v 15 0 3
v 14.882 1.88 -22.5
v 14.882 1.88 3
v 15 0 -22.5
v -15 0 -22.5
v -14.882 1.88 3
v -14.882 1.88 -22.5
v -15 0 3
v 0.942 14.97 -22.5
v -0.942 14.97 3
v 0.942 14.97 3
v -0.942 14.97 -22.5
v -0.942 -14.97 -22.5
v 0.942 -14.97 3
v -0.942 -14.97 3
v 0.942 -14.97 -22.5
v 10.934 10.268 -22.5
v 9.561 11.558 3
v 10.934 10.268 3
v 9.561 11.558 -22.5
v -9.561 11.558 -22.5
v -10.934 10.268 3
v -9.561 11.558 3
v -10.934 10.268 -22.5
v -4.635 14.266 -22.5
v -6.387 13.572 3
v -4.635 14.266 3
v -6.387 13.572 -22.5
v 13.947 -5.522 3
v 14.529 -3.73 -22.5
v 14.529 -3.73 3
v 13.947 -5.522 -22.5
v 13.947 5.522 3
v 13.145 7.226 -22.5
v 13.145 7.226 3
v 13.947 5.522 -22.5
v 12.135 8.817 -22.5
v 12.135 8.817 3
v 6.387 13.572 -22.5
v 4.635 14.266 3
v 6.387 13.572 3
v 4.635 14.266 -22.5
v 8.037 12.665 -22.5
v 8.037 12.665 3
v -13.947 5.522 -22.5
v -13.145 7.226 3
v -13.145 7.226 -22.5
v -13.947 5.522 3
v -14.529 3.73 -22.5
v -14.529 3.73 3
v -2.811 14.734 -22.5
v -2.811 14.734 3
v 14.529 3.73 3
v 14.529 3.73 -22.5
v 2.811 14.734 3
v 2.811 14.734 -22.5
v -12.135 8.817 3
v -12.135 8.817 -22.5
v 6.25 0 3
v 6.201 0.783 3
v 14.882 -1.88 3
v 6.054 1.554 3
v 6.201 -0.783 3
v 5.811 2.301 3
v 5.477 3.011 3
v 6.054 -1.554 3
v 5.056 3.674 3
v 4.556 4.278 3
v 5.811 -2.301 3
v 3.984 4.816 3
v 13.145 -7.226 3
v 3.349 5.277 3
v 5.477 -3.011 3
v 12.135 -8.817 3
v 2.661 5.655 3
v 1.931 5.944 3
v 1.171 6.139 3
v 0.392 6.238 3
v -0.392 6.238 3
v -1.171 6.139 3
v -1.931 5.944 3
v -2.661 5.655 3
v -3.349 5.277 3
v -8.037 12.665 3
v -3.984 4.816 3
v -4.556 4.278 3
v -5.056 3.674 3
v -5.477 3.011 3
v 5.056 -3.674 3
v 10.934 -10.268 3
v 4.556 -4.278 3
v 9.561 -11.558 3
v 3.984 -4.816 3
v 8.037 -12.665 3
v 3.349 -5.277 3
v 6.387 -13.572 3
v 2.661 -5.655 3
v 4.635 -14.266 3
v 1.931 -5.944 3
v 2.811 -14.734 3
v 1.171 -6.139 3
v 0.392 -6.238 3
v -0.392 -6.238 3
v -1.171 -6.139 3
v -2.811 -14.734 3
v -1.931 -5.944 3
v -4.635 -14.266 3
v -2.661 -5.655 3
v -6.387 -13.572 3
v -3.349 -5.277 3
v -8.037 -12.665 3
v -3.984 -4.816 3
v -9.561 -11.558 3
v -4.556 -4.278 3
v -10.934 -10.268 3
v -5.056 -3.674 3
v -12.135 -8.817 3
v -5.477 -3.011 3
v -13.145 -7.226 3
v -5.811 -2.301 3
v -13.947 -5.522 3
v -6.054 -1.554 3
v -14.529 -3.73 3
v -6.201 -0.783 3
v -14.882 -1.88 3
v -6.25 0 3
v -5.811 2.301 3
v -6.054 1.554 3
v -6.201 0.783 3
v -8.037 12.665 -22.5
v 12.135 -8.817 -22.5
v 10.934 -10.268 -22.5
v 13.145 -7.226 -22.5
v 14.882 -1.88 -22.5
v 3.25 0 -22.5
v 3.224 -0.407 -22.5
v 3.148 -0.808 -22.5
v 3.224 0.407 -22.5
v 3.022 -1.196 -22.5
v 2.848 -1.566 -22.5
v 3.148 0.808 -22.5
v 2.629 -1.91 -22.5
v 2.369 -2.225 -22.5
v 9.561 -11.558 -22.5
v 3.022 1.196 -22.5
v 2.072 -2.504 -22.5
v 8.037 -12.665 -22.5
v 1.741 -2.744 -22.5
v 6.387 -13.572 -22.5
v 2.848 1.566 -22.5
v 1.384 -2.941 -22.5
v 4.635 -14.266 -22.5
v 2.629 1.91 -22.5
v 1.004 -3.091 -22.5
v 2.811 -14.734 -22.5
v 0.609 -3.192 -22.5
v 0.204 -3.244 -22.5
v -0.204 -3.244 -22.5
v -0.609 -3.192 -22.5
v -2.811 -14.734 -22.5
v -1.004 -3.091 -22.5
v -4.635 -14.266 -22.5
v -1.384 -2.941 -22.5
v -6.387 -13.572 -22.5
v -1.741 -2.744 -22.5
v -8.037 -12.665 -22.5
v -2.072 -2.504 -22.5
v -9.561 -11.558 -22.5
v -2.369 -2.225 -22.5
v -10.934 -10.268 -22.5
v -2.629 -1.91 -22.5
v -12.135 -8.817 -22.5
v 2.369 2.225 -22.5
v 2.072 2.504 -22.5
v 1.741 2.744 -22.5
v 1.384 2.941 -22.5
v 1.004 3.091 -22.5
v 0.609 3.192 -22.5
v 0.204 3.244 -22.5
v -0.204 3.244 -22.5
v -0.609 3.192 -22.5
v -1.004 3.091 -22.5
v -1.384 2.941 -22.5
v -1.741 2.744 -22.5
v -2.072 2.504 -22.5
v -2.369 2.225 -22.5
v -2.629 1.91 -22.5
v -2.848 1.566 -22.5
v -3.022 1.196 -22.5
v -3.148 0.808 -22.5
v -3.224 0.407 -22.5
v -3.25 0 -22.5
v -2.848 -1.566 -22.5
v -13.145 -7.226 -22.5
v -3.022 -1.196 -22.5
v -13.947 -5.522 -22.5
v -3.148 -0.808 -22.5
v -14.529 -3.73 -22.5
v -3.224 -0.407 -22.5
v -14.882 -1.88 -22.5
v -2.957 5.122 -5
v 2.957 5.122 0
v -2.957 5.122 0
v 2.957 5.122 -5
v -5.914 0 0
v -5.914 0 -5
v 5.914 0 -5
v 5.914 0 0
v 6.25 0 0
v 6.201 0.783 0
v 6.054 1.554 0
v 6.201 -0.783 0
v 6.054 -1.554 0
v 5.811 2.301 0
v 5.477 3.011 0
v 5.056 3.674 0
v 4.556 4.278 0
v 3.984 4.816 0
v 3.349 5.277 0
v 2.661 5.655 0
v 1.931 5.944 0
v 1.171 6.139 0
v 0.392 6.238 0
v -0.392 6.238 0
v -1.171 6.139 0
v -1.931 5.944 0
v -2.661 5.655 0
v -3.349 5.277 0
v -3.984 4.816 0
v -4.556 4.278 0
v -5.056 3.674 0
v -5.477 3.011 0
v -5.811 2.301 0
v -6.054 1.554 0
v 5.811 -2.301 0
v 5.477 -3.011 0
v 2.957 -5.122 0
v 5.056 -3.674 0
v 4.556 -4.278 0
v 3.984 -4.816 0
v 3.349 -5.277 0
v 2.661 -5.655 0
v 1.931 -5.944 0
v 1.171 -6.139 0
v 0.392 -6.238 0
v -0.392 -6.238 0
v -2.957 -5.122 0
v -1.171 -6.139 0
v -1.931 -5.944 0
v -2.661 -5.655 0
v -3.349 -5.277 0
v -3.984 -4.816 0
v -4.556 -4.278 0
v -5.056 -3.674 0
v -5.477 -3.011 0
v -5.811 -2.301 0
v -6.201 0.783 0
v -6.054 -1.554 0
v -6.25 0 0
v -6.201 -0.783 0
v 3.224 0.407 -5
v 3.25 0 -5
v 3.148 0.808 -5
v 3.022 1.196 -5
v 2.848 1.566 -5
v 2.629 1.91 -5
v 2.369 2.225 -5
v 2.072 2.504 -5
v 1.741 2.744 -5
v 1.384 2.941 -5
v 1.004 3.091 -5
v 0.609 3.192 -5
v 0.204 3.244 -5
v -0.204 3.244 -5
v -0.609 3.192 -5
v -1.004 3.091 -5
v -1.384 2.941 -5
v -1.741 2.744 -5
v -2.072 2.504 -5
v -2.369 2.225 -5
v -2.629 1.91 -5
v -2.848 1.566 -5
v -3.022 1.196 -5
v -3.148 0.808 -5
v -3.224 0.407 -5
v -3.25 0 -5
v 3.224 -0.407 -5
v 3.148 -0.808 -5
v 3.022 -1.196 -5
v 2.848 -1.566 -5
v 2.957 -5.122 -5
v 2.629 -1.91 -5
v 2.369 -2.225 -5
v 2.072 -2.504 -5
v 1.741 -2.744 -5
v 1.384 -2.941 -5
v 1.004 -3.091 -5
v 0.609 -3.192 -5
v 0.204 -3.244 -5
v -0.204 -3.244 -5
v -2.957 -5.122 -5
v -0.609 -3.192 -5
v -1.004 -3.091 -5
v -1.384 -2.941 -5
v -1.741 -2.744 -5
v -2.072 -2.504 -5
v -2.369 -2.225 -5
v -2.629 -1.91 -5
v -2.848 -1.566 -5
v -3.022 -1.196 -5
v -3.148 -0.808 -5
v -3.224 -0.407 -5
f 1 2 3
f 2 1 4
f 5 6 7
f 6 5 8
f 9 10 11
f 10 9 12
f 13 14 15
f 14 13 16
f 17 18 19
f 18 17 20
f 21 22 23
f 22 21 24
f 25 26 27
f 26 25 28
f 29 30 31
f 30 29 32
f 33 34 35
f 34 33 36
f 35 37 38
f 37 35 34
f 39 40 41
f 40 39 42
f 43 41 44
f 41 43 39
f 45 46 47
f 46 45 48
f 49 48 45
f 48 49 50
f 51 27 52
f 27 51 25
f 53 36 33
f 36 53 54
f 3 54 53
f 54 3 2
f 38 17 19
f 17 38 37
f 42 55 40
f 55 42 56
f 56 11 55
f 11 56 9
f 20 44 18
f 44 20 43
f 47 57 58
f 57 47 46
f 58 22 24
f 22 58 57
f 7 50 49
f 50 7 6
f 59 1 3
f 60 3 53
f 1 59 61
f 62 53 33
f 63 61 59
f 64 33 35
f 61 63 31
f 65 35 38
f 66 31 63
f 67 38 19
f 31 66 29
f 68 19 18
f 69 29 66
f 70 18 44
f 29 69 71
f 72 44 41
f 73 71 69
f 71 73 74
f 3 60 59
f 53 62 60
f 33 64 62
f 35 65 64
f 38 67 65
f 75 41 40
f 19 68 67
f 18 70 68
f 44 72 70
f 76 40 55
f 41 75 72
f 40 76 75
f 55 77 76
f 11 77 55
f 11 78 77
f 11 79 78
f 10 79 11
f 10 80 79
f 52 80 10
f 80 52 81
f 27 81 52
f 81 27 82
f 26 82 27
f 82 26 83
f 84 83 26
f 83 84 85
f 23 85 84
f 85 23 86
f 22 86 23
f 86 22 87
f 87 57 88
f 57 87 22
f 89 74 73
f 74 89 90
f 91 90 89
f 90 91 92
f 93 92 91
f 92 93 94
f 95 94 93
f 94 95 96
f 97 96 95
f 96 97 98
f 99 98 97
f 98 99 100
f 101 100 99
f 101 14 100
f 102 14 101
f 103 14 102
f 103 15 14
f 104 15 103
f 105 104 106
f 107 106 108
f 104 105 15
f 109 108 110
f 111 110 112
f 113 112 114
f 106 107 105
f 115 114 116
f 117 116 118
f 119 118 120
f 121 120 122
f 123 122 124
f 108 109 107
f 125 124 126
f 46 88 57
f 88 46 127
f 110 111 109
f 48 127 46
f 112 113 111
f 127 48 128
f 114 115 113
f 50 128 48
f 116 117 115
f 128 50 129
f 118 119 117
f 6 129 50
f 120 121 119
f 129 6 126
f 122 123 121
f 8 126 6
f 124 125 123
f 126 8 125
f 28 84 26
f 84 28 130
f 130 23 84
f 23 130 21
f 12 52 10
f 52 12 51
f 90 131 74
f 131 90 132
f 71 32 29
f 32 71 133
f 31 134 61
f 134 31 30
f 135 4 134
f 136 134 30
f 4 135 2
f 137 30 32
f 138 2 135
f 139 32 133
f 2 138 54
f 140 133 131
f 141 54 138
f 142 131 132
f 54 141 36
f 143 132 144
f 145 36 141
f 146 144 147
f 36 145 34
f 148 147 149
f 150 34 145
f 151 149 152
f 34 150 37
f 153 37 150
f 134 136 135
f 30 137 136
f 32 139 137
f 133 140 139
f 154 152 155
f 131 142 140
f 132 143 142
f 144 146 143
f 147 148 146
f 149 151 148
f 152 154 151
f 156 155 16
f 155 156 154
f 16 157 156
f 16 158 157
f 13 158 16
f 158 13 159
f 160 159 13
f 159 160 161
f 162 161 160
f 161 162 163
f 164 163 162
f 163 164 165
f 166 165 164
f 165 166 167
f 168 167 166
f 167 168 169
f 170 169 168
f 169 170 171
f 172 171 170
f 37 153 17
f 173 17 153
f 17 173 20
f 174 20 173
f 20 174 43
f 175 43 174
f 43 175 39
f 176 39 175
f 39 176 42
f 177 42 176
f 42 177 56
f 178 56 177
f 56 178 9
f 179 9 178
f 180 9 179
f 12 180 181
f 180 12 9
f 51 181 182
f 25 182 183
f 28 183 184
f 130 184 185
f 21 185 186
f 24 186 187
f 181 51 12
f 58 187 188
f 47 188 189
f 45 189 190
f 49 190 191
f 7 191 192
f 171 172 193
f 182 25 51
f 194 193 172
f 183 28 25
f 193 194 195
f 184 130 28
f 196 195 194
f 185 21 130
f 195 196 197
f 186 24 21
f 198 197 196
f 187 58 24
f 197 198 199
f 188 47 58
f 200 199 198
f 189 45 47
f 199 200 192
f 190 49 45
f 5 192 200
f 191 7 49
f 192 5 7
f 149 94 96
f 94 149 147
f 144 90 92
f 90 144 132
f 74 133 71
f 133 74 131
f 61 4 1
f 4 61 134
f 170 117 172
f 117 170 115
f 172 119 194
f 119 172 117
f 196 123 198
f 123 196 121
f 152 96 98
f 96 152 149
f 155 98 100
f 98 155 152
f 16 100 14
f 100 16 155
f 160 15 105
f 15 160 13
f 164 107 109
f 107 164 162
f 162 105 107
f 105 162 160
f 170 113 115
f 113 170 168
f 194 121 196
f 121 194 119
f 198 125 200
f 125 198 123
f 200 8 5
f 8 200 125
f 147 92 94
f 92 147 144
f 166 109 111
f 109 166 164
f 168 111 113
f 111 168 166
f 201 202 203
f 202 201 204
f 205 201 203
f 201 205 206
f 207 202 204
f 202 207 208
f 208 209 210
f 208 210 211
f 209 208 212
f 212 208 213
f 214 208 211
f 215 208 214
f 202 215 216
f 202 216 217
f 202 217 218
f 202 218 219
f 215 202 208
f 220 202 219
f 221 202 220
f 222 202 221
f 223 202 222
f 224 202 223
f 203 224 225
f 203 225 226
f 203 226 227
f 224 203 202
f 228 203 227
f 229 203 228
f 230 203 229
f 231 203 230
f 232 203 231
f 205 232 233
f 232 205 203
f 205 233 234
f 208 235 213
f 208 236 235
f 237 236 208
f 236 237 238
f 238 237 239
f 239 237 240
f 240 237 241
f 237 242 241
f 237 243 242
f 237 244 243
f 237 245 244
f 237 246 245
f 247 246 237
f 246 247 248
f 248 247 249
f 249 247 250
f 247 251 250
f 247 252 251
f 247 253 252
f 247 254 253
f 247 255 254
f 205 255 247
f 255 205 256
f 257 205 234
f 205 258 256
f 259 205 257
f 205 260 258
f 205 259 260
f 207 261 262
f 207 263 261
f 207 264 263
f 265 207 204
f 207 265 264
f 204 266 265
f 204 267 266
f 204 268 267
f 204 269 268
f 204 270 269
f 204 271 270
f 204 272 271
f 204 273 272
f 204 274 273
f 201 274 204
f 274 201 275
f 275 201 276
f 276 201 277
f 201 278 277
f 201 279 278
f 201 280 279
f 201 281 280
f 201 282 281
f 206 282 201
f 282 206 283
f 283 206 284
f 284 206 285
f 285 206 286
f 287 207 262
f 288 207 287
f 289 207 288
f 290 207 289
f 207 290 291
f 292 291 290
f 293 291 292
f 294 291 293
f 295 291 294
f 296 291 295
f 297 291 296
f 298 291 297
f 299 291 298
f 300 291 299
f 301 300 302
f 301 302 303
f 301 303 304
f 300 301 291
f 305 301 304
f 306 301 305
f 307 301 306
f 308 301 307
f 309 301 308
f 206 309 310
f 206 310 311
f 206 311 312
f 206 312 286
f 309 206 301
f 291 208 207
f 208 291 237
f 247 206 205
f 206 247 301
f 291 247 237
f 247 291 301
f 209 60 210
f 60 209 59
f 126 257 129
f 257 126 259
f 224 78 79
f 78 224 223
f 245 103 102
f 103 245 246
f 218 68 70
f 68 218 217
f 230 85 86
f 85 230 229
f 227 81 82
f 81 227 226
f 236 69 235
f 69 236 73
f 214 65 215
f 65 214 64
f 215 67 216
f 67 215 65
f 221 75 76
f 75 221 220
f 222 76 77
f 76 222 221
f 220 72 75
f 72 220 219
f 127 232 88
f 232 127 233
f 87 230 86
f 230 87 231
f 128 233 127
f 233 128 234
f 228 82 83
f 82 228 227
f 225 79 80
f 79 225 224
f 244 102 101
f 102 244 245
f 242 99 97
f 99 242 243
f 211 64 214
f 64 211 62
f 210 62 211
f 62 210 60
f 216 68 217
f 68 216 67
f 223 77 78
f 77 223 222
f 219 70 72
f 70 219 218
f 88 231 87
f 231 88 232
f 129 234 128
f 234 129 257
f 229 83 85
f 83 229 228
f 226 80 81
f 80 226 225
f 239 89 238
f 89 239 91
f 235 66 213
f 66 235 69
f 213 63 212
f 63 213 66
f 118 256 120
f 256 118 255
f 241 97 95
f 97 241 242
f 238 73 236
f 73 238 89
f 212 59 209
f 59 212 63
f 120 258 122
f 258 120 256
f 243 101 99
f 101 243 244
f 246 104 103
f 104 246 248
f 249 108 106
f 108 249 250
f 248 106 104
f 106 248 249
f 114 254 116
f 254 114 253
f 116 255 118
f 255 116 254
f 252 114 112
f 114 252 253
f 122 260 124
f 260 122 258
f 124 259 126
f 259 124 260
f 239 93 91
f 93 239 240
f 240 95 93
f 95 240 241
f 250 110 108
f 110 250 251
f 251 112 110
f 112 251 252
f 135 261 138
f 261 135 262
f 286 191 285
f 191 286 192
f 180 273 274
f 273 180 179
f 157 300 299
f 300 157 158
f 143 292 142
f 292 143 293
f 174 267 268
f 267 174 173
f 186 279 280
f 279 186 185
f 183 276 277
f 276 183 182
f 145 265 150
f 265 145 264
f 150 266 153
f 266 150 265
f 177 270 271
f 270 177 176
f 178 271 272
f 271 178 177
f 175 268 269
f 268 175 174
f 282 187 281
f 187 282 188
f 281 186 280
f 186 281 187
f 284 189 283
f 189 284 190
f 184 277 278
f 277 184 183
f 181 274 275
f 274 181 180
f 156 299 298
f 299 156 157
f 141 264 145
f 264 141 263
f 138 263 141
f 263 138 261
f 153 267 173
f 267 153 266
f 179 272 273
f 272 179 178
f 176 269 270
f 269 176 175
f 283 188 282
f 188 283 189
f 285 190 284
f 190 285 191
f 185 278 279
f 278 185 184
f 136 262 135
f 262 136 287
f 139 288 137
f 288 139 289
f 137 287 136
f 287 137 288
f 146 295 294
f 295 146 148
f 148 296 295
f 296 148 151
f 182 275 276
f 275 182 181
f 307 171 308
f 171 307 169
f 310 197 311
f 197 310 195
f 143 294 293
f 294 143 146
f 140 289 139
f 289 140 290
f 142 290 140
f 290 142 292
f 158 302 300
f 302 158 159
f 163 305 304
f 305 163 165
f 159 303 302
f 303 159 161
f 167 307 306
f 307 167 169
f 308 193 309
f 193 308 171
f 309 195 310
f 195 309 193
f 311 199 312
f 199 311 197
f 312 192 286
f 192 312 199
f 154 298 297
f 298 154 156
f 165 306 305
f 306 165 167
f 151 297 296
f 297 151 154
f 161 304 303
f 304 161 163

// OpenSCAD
$fn = 50;


difference() {
	union() {
		translate(v = [0, 0, -22.5000000000]) {
			cylinder(h = 25.5000000000, r = 15.0000000000);
		}
		#translate(v = [0, 0, -24.0000000000]) {
			cylinder(h = 24, r = 2.8750000000);
		}
	}
	union() {
		translate(v = [0, 0, 0]) {
			rotate(a = [0, 0, 0]) {
				difference() {
					union() {
						translate(v = [0, 0, -5]) {
							linear_extrude(height = 5) {
								polygon(points = [[5.9142500000, 0.0000000000], [2.9571250000, 5.1218907443], [-2.9571250000, 5.1218907443], [-5.9142500000, 0.0000000000], [-2.9571250000, -5.1218907443], [2.9571250000, -5.1218907443]]);
							}
						}
					}
					union();
				}
			}
		}
		#cylinder(h = 3, r = 6.2500000000);
		#translate(v = [0, 0, -100.0000000000]) {
			cylinder(h = 200, r = 3.2500000000);
		}
	}
}
